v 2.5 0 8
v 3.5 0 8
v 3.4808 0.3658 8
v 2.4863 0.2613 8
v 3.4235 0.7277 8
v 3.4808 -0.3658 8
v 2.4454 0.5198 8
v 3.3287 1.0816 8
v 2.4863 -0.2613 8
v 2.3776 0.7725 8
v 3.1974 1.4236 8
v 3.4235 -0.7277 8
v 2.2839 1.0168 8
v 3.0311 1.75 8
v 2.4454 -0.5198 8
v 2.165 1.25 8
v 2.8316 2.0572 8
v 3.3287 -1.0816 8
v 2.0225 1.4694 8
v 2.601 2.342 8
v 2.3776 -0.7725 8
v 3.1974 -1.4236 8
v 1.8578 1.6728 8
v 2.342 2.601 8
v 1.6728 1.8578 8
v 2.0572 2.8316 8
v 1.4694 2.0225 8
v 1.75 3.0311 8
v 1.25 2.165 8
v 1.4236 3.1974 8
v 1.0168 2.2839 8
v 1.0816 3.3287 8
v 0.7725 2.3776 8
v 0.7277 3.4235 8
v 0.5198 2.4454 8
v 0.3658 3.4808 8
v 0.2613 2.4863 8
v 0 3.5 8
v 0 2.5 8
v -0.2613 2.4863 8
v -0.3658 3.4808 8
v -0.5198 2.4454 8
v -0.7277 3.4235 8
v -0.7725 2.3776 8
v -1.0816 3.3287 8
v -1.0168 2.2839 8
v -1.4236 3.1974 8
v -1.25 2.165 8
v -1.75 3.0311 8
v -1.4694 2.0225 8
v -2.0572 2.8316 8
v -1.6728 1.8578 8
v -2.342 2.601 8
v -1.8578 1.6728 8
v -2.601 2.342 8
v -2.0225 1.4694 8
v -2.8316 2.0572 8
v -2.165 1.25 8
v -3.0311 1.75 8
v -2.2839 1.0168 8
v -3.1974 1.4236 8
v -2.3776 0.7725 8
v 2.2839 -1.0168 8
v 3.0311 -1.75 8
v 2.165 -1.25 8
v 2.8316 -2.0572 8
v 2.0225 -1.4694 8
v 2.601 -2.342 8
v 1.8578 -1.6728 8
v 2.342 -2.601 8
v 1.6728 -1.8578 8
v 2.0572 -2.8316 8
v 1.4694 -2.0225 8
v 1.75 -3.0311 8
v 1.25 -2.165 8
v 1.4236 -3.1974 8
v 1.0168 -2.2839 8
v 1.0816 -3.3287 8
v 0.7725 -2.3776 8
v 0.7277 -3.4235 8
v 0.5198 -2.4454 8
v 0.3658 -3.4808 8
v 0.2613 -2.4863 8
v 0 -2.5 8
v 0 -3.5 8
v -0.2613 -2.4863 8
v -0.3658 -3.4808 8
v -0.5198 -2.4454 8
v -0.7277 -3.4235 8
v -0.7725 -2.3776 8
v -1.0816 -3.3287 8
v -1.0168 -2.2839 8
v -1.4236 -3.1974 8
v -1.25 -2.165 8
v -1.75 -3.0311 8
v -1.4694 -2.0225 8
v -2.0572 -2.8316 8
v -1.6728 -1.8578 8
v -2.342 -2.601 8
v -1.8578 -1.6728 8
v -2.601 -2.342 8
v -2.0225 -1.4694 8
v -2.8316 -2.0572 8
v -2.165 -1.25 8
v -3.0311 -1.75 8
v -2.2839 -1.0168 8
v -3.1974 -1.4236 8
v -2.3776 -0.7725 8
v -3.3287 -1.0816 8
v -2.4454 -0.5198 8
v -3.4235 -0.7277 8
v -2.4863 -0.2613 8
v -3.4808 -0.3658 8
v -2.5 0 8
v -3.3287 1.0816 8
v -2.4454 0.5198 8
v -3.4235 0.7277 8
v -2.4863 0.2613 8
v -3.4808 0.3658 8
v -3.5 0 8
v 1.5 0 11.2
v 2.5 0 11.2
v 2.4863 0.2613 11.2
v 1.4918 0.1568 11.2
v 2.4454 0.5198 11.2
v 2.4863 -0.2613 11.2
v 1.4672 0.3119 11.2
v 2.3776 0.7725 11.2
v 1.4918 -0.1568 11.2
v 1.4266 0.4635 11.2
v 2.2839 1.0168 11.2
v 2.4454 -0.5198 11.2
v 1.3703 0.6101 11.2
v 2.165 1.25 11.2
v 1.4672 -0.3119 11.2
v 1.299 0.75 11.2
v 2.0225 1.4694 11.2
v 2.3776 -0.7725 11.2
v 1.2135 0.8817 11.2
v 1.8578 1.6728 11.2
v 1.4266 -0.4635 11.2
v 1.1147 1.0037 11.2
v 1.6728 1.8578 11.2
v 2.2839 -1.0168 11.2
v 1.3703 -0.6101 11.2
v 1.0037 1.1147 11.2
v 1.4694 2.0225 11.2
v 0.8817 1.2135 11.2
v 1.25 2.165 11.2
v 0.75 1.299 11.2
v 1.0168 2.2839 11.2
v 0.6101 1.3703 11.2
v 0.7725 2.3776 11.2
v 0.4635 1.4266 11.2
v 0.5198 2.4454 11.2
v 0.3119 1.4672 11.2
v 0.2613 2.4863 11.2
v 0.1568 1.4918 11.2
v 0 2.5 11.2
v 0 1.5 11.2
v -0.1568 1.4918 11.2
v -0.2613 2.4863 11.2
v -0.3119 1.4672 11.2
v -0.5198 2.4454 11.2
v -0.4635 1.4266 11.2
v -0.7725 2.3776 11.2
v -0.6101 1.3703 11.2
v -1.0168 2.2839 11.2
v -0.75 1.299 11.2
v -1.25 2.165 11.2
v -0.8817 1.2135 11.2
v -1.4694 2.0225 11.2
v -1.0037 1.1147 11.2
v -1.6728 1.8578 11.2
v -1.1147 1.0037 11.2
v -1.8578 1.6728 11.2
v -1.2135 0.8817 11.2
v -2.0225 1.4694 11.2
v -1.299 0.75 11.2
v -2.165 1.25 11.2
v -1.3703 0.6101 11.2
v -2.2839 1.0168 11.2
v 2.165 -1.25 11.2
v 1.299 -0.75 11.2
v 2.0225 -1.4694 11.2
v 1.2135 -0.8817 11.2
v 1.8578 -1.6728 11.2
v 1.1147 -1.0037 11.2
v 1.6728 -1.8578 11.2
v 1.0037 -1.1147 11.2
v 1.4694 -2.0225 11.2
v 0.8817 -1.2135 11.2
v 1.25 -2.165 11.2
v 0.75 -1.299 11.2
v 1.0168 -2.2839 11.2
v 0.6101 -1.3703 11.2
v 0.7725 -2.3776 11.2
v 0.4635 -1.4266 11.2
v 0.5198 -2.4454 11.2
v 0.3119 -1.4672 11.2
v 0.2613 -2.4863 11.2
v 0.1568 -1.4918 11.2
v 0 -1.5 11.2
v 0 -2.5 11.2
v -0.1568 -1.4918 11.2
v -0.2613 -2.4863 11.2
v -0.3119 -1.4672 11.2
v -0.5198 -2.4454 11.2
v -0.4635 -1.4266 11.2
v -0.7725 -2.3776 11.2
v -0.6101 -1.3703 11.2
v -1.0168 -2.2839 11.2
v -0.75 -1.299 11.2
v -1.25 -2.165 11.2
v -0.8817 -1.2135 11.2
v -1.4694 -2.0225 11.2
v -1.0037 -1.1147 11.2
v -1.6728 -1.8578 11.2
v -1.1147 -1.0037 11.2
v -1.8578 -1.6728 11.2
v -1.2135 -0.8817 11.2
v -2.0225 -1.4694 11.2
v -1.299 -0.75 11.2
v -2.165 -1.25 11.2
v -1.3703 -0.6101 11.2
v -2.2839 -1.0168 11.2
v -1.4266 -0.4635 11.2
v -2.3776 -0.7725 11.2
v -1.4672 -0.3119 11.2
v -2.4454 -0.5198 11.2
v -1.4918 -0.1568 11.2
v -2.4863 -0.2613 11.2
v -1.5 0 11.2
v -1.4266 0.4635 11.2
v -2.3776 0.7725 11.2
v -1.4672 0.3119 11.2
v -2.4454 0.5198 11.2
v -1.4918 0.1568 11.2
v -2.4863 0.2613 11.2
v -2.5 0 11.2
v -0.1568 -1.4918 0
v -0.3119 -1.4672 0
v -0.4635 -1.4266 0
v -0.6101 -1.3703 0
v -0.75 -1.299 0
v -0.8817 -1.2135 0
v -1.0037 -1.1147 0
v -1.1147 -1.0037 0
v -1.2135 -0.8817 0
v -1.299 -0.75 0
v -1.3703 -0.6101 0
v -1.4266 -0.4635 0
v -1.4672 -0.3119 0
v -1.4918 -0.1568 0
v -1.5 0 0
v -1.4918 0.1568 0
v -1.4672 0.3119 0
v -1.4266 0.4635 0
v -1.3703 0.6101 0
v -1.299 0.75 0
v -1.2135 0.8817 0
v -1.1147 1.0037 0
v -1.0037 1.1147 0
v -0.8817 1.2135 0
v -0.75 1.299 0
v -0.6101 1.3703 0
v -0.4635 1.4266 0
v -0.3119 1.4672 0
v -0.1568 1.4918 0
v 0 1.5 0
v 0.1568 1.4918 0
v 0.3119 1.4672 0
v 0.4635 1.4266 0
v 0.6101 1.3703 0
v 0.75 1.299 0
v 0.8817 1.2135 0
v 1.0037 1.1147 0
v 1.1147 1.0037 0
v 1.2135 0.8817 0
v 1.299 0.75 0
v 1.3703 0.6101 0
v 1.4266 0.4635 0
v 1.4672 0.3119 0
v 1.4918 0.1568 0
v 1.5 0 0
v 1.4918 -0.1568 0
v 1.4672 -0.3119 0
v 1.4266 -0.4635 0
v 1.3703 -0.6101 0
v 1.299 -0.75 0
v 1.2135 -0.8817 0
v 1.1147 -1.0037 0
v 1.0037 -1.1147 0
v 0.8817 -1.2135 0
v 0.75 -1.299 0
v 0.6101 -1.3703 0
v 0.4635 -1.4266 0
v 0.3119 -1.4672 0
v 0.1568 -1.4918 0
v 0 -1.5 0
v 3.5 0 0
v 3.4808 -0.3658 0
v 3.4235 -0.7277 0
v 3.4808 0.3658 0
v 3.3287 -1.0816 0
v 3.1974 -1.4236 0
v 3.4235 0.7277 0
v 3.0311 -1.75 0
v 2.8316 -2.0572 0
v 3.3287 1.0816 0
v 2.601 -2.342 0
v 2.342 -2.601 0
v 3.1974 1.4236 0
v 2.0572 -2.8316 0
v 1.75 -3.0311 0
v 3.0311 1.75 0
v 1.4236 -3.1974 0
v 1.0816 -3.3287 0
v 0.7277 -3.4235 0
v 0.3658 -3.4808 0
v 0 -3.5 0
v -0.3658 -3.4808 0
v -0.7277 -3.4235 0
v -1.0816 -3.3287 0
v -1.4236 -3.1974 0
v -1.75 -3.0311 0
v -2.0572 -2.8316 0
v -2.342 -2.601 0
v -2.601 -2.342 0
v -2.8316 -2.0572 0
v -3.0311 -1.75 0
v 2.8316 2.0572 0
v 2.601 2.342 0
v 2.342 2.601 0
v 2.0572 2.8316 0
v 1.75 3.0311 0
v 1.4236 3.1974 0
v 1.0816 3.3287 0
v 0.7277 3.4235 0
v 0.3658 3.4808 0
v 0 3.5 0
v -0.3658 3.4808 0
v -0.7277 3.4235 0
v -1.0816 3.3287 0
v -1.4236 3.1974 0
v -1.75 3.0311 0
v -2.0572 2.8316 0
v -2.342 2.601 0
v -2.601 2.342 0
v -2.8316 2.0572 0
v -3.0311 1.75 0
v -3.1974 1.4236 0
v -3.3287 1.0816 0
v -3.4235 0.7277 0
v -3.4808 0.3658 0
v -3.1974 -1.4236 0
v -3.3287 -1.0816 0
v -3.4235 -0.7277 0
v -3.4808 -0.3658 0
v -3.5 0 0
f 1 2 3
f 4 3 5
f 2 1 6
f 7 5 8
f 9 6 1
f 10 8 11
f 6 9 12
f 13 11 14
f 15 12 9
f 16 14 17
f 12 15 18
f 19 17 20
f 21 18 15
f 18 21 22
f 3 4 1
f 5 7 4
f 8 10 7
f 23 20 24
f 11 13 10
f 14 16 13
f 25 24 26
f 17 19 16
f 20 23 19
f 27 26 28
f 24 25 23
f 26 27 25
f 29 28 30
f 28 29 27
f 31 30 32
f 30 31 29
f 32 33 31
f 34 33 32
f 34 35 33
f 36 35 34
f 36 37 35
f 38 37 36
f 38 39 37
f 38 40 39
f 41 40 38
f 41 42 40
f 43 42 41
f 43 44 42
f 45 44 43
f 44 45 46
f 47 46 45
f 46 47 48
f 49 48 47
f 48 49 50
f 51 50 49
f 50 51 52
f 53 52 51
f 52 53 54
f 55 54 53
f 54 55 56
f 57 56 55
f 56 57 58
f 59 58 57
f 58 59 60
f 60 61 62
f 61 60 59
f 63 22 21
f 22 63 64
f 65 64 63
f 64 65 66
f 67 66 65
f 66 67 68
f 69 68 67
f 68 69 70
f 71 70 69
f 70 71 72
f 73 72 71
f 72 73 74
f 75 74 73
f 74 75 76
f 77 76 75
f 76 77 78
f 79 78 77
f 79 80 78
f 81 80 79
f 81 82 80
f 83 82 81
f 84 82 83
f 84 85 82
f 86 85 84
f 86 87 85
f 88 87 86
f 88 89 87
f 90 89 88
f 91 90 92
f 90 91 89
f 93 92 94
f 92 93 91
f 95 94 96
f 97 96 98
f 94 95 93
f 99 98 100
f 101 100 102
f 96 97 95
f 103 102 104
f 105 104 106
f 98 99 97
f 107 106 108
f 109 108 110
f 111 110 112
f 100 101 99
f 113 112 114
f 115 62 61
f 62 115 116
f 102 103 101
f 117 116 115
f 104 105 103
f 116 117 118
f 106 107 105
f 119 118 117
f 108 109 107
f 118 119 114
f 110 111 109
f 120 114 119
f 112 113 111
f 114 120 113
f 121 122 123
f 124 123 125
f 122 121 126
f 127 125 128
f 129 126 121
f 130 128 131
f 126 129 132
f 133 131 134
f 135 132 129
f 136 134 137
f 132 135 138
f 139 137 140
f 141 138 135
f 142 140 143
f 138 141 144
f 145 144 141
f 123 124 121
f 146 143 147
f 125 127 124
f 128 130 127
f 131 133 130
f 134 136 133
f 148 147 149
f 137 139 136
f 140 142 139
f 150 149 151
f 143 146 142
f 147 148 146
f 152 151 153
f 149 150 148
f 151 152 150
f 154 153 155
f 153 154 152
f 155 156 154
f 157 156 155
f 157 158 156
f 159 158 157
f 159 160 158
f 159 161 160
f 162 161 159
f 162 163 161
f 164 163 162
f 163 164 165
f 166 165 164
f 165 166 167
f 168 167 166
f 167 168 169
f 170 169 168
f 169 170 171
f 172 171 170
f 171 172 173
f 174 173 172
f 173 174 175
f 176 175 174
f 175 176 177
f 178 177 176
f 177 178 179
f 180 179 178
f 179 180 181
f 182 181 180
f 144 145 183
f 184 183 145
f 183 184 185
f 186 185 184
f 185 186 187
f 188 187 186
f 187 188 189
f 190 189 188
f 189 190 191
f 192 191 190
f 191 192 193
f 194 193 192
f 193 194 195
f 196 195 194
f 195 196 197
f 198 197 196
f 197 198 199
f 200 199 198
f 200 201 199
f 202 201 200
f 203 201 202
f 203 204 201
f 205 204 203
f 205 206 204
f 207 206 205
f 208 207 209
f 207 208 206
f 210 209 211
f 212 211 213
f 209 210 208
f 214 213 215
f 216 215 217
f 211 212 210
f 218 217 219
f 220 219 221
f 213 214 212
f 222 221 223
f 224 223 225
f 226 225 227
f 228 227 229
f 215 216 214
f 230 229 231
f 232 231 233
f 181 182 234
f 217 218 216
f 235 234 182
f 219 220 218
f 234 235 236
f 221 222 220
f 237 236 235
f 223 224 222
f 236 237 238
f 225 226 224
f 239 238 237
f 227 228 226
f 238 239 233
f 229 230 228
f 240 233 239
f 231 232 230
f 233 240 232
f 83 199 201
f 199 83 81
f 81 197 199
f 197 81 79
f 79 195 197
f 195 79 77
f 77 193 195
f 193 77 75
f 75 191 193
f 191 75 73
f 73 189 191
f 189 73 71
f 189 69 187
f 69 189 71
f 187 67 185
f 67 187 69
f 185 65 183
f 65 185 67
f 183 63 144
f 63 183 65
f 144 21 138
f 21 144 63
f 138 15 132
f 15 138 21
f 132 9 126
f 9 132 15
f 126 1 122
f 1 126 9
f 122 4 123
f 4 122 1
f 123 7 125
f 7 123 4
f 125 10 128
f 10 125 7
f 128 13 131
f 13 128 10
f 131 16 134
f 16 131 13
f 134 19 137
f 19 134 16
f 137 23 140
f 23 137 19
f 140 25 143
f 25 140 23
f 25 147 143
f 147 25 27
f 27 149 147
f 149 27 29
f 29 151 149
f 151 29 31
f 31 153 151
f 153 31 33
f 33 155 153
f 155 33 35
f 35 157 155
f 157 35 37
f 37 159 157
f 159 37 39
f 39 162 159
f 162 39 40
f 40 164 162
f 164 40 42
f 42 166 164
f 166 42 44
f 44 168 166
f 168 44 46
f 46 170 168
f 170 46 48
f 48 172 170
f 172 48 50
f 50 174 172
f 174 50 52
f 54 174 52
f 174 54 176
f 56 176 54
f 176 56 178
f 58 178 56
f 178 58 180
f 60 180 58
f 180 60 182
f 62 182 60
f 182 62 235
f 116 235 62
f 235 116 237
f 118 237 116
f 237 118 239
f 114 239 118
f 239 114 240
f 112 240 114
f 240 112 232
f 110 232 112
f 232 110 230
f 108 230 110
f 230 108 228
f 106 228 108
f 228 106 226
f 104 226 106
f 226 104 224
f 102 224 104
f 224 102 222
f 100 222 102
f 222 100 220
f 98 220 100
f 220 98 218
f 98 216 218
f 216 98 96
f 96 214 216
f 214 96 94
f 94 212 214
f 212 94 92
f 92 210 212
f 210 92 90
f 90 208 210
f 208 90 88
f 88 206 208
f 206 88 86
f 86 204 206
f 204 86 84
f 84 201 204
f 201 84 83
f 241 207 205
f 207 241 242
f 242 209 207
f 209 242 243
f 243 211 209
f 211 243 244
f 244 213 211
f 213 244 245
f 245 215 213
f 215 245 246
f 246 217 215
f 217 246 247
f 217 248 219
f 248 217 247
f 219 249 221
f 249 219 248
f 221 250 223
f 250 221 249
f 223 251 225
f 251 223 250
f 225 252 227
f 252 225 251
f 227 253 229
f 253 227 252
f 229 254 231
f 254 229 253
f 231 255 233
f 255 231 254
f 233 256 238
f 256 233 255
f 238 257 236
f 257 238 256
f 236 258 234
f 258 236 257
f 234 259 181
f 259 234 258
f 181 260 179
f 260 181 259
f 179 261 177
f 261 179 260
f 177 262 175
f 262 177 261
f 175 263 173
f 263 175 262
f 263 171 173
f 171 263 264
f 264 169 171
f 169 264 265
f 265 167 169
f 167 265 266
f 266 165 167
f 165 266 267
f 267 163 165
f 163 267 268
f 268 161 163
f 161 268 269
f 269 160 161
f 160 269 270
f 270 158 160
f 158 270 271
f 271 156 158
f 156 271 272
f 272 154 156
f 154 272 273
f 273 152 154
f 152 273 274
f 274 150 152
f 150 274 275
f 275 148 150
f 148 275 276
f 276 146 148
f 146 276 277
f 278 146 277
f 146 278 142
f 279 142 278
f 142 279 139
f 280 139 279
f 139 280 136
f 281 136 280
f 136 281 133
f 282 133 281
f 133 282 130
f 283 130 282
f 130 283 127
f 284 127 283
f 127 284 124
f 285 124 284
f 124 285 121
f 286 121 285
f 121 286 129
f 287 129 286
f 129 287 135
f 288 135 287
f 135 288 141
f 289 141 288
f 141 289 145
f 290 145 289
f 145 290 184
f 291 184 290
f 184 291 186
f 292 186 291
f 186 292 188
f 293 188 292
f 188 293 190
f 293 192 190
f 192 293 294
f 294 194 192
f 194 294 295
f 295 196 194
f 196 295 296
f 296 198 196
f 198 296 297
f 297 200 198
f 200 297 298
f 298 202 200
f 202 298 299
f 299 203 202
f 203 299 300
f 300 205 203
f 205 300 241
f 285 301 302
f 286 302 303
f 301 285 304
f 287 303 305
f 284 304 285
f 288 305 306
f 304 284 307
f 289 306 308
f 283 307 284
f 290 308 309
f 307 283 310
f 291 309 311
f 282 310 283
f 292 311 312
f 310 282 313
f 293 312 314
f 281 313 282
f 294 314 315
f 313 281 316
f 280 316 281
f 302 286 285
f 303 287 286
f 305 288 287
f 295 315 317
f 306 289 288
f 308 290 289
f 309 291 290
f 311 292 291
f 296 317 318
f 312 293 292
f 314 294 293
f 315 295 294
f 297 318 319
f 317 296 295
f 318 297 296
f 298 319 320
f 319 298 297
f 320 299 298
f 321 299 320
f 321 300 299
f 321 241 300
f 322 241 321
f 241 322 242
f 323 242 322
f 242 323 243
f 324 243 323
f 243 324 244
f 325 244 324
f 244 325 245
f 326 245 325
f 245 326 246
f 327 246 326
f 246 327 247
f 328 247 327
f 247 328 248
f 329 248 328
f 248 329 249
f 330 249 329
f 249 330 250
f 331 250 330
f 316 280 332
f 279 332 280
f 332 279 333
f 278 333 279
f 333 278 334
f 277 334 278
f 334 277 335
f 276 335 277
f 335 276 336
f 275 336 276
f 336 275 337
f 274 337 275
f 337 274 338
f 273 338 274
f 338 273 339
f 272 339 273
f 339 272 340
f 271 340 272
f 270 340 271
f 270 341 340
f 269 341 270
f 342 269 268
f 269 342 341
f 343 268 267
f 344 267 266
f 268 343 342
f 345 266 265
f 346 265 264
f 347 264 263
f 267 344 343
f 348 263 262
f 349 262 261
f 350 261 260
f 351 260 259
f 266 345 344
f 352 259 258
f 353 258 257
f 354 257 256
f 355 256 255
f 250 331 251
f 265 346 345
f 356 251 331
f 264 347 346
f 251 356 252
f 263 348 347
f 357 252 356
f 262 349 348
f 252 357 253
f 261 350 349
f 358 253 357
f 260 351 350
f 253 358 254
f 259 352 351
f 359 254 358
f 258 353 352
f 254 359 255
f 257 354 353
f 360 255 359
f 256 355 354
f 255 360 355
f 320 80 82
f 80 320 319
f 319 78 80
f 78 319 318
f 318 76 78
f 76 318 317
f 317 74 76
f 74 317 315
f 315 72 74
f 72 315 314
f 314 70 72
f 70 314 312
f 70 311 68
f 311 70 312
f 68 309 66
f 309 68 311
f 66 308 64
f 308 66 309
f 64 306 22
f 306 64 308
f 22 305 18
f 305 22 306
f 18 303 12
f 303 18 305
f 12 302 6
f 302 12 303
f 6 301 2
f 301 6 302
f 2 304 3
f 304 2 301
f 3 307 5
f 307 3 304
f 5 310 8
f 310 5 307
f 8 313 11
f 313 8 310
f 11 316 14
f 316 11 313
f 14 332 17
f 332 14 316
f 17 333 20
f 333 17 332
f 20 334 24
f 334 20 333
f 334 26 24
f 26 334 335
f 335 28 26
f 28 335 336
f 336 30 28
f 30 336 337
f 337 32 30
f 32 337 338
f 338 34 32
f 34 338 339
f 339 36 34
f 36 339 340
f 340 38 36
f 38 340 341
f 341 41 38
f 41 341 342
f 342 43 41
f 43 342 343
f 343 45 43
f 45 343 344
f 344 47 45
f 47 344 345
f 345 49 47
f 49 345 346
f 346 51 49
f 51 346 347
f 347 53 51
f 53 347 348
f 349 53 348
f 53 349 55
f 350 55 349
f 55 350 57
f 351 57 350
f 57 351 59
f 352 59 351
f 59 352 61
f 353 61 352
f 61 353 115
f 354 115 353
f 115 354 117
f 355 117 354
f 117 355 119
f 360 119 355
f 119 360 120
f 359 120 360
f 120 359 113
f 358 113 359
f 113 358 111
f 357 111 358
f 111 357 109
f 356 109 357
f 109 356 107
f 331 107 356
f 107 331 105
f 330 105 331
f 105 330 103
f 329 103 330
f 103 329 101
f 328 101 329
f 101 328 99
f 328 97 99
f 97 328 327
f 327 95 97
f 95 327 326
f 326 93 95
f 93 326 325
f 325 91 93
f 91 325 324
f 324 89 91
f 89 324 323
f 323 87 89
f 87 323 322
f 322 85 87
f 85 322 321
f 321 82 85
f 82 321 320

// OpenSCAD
/* Spacer for Aramcon Badge 2019 Upgrade Kit */

$fn=60;

height = 11.2;
step = 8;

translate([0, 0, step])
linear_extrude(height - step)
difference() {
    circle(r=2.5);
    circle(r=1.5);
}

linear_extrude(step)
difference() {
    circle(r=3.5);
    circle(r=1.5);
}
